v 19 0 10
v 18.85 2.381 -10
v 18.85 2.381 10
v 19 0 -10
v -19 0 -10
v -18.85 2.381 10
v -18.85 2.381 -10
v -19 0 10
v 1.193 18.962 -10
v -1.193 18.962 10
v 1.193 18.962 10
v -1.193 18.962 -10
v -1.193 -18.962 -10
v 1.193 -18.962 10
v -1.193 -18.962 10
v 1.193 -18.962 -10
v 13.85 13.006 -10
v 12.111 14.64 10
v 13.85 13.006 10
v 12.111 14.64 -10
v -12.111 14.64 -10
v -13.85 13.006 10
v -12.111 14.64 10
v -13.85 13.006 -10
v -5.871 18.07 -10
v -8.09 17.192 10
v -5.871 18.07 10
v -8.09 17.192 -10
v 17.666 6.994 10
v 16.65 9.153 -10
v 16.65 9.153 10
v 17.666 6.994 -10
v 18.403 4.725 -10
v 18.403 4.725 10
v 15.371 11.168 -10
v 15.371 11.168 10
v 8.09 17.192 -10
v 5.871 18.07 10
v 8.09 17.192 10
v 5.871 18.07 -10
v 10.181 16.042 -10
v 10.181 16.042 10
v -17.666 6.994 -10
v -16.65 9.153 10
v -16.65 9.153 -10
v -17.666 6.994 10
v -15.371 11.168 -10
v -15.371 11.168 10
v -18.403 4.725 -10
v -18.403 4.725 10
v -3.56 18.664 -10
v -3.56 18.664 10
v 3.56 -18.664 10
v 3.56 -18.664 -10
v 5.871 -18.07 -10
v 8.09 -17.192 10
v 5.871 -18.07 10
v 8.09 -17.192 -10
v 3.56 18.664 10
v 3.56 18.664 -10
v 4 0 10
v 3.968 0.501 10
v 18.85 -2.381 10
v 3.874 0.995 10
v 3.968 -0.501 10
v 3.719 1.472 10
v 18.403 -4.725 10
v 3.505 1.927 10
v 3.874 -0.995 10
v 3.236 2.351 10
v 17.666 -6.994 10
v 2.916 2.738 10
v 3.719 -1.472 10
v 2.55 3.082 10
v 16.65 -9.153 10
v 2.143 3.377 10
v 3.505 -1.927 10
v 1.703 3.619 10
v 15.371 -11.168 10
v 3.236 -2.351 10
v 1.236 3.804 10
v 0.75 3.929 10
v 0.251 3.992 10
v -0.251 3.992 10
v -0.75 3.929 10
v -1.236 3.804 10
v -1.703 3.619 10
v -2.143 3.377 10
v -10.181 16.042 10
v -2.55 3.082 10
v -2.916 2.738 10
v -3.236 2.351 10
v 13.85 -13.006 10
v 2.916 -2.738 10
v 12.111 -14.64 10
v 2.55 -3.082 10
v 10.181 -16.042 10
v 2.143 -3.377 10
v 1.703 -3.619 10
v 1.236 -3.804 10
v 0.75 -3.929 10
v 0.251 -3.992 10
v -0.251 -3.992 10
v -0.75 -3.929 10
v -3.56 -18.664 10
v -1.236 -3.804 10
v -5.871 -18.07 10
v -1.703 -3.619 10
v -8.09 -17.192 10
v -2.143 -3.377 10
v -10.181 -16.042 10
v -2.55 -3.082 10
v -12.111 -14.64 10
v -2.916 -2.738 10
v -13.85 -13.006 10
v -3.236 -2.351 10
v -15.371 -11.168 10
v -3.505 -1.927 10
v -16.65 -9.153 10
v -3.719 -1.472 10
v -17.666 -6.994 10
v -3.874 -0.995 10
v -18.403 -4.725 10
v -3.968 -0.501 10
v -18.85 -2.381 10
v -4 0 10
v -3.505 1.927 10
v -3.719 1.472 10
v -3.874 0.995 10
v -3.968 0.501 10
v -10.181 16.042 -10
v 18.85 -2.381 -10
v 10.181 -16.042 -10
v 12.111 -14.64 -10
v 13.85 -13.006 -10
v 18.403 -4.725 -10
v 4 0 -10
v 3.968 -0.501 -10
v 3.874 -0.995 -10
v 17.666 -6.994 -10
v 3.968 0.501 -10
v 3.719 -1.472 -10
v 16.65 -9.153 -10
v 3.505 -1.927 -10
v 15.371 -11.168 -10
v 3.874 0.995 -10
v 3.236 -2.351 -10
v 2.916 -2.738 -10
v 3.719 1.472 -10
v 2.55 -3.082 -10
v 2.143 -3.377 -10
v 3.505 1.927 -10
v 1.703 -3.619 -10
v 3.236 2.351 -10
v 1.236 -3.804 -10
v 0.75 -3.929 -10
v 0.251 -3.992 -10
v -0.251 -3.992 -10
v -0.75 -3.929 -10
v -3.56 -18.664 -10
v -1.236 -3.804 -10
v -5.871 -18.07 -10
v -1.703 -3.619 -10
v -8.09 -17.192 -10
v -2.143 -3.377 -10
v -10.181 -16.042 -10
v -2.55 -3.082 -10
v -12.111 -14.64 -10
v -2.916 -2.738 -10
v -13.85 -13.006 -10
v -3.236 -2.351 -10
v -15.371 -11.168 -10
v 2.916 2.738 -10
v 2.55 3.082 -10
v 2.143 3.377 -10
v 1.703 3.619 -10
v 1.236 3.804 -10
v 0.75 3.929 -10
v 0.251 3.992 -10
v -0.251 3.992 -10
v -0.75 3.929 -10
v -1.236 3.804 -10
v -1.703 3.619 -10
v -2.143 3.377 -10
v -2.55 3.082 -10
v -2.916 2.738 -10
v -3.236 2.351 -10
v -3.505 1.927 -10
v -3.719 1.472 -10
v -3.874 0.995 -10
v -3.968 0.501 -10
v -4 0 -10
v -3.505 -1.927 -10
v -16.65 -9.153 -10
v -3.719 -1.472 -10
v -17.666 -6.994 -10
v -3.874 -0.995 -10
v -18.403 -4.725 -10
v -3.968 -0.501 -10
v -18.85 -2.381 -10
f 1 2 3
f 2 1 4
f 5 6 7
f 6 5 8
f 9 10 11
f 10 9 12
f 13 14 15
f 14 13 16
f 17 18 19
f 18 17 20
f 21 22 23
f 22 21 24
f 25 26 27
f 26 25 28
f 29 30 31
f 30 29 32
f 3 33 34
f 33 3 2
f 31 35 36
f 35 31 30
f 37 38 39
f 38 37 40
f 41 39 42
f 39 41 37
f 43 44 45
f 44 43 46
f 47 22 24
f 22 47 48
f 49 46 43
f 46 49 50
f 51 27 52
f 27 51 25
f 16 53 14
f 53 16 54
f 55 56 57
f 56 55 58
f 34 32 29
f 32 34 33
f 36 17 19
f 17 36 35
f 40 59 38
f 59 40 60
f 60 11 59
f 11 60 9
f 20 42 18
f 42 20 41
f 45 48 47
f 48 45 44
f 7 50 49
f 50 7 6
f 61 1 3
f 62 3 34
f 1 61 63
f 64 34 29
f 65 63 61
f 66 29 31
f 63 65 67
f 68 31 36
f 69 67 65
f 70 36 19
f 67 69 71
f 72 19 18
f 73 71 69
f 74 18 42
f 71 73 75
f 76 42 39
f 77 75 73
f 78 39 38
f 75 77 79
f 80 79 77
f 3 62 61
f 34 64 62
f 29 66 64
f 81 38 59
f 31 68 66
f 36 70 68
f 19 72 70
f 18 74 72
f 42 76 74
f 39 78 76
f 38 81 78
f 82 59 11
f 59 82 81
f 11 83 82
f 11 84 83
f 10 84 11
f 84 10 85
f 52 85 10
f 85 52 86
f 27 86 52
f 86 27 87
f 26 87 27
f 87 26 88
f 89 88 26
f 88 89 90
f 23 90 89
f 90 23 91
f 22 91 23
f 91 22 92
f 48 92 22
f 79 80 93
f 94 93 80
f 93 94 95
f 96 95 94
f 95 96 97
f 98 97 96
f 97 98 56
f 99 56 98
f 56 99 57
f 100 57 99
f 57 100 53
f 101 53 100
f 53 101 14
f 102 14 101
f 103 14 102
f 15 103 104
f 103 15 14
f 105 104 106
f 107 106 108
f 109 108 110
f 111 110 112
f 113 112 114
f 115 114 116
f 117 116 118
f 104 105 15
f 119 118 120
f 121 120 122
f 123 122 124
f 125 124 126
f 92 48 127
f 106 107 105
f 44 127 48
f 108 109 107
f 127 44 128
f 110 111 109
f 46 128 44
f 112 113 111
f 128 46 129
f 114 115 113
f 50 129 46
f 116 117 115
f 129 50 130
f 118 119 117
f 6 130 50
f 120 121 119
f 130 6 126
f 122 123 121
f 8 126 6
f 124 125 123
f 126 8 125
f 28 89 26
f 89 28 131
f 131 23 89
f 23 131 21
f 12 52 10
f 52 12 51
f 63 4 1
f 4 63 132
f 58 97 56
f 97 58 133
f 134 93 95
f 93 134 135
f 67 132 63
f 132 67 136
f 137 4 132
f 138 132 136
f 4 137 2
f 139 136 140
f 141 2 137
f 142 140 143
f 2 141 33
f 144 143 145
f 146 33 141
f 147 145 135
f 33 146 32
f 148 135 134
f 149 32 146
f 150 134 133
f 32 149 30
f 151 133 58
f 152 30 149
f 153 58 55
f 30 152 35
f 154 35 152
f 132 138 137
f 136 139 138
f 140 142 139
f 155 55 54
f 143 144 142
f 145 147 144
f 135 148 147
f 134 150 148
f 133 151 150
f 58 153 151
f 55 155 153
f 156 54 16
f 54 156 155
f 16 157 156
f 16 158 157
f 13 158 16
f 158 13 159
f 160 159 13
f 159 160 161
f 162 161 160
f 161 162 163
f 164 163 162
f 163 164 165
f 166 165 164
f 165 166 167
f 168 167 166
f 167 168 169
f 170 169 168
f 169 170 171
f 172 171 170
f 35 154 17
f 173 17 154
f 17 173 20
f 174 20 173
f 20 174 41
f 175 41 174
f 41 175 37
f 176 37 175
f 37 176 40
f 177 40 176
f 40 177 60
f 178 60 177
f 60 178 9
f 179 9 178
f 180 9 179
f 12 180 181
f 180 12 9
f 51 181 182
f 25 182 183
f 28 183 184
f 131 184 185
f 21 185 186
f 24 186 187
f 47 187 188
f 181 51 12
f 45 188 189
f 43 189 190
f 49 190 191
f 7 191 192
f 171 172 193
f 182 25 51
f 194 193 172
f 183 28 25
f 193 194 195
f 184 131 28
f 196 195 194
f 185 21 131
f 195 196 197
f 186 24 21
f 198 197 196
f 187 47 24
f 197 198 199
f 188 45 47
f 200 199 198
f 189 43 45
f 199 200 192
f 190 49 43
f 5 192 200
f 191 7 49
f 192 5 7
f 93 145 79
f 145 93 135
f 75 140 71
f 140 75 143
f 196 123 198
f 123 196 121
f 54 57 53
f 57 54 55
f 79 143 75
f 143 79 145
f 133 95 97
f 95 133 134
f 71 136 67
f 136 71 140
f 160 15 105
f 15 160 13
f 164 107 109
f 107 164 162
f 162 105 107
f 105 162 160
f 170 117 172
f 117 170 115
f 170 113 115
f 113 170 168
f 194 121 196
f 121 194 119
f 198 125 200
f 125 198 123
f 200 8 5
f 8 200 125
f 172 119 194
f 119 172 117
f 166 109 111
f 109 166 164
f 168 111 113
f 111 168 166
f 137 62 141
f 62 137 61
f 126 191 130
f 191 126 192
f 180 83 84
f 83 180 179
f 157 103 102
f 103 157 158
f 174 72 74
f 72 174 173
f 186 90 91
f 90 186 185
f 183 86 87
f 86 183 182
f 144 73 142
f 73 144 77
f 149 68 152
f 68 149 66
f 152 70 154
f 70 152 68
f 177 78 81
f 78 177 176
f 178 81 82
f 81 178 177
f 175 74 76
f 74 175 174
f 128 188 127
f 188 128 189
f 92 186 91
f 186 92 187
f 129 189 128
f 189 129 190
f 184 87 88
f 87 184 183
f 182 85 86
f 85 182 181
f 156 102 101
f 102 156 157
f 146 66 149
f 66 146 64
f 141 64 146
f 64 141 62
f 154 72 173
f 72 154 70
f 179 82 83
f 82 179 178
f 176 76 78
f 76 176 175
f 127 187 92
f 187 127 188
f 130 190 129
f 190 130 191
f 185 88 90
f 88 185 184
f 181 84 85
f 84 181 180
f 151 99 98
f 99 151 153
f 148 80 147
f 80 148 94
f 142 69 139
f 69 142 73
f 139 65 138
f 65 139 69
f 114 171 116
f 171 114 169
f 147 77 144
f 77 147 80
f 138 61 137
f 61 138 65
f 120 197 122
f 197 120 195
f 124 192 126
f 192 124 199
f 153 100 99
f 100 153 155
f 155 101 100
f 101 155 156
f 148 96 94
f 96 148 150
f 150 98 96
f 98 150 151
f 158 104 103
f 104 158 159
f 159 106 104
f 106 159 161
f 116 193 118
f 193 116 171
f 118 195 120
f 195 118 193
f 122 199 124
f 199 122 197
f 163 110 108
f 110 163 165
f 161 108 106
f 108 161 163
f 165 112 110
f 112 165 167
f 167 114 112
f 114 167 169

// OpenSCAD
$fn = 50;


difference() {
	union() {
		translate(v = [0, 0, -10.0000000000]) {
			cylinder(h = 20, r = 19.0000000000);
		}
	}
	union() {
		translate(v = [0, 0, -100.0000000000]) {
			cylinder(h = 200, r = 4.0000000000);
		}
	}
}
